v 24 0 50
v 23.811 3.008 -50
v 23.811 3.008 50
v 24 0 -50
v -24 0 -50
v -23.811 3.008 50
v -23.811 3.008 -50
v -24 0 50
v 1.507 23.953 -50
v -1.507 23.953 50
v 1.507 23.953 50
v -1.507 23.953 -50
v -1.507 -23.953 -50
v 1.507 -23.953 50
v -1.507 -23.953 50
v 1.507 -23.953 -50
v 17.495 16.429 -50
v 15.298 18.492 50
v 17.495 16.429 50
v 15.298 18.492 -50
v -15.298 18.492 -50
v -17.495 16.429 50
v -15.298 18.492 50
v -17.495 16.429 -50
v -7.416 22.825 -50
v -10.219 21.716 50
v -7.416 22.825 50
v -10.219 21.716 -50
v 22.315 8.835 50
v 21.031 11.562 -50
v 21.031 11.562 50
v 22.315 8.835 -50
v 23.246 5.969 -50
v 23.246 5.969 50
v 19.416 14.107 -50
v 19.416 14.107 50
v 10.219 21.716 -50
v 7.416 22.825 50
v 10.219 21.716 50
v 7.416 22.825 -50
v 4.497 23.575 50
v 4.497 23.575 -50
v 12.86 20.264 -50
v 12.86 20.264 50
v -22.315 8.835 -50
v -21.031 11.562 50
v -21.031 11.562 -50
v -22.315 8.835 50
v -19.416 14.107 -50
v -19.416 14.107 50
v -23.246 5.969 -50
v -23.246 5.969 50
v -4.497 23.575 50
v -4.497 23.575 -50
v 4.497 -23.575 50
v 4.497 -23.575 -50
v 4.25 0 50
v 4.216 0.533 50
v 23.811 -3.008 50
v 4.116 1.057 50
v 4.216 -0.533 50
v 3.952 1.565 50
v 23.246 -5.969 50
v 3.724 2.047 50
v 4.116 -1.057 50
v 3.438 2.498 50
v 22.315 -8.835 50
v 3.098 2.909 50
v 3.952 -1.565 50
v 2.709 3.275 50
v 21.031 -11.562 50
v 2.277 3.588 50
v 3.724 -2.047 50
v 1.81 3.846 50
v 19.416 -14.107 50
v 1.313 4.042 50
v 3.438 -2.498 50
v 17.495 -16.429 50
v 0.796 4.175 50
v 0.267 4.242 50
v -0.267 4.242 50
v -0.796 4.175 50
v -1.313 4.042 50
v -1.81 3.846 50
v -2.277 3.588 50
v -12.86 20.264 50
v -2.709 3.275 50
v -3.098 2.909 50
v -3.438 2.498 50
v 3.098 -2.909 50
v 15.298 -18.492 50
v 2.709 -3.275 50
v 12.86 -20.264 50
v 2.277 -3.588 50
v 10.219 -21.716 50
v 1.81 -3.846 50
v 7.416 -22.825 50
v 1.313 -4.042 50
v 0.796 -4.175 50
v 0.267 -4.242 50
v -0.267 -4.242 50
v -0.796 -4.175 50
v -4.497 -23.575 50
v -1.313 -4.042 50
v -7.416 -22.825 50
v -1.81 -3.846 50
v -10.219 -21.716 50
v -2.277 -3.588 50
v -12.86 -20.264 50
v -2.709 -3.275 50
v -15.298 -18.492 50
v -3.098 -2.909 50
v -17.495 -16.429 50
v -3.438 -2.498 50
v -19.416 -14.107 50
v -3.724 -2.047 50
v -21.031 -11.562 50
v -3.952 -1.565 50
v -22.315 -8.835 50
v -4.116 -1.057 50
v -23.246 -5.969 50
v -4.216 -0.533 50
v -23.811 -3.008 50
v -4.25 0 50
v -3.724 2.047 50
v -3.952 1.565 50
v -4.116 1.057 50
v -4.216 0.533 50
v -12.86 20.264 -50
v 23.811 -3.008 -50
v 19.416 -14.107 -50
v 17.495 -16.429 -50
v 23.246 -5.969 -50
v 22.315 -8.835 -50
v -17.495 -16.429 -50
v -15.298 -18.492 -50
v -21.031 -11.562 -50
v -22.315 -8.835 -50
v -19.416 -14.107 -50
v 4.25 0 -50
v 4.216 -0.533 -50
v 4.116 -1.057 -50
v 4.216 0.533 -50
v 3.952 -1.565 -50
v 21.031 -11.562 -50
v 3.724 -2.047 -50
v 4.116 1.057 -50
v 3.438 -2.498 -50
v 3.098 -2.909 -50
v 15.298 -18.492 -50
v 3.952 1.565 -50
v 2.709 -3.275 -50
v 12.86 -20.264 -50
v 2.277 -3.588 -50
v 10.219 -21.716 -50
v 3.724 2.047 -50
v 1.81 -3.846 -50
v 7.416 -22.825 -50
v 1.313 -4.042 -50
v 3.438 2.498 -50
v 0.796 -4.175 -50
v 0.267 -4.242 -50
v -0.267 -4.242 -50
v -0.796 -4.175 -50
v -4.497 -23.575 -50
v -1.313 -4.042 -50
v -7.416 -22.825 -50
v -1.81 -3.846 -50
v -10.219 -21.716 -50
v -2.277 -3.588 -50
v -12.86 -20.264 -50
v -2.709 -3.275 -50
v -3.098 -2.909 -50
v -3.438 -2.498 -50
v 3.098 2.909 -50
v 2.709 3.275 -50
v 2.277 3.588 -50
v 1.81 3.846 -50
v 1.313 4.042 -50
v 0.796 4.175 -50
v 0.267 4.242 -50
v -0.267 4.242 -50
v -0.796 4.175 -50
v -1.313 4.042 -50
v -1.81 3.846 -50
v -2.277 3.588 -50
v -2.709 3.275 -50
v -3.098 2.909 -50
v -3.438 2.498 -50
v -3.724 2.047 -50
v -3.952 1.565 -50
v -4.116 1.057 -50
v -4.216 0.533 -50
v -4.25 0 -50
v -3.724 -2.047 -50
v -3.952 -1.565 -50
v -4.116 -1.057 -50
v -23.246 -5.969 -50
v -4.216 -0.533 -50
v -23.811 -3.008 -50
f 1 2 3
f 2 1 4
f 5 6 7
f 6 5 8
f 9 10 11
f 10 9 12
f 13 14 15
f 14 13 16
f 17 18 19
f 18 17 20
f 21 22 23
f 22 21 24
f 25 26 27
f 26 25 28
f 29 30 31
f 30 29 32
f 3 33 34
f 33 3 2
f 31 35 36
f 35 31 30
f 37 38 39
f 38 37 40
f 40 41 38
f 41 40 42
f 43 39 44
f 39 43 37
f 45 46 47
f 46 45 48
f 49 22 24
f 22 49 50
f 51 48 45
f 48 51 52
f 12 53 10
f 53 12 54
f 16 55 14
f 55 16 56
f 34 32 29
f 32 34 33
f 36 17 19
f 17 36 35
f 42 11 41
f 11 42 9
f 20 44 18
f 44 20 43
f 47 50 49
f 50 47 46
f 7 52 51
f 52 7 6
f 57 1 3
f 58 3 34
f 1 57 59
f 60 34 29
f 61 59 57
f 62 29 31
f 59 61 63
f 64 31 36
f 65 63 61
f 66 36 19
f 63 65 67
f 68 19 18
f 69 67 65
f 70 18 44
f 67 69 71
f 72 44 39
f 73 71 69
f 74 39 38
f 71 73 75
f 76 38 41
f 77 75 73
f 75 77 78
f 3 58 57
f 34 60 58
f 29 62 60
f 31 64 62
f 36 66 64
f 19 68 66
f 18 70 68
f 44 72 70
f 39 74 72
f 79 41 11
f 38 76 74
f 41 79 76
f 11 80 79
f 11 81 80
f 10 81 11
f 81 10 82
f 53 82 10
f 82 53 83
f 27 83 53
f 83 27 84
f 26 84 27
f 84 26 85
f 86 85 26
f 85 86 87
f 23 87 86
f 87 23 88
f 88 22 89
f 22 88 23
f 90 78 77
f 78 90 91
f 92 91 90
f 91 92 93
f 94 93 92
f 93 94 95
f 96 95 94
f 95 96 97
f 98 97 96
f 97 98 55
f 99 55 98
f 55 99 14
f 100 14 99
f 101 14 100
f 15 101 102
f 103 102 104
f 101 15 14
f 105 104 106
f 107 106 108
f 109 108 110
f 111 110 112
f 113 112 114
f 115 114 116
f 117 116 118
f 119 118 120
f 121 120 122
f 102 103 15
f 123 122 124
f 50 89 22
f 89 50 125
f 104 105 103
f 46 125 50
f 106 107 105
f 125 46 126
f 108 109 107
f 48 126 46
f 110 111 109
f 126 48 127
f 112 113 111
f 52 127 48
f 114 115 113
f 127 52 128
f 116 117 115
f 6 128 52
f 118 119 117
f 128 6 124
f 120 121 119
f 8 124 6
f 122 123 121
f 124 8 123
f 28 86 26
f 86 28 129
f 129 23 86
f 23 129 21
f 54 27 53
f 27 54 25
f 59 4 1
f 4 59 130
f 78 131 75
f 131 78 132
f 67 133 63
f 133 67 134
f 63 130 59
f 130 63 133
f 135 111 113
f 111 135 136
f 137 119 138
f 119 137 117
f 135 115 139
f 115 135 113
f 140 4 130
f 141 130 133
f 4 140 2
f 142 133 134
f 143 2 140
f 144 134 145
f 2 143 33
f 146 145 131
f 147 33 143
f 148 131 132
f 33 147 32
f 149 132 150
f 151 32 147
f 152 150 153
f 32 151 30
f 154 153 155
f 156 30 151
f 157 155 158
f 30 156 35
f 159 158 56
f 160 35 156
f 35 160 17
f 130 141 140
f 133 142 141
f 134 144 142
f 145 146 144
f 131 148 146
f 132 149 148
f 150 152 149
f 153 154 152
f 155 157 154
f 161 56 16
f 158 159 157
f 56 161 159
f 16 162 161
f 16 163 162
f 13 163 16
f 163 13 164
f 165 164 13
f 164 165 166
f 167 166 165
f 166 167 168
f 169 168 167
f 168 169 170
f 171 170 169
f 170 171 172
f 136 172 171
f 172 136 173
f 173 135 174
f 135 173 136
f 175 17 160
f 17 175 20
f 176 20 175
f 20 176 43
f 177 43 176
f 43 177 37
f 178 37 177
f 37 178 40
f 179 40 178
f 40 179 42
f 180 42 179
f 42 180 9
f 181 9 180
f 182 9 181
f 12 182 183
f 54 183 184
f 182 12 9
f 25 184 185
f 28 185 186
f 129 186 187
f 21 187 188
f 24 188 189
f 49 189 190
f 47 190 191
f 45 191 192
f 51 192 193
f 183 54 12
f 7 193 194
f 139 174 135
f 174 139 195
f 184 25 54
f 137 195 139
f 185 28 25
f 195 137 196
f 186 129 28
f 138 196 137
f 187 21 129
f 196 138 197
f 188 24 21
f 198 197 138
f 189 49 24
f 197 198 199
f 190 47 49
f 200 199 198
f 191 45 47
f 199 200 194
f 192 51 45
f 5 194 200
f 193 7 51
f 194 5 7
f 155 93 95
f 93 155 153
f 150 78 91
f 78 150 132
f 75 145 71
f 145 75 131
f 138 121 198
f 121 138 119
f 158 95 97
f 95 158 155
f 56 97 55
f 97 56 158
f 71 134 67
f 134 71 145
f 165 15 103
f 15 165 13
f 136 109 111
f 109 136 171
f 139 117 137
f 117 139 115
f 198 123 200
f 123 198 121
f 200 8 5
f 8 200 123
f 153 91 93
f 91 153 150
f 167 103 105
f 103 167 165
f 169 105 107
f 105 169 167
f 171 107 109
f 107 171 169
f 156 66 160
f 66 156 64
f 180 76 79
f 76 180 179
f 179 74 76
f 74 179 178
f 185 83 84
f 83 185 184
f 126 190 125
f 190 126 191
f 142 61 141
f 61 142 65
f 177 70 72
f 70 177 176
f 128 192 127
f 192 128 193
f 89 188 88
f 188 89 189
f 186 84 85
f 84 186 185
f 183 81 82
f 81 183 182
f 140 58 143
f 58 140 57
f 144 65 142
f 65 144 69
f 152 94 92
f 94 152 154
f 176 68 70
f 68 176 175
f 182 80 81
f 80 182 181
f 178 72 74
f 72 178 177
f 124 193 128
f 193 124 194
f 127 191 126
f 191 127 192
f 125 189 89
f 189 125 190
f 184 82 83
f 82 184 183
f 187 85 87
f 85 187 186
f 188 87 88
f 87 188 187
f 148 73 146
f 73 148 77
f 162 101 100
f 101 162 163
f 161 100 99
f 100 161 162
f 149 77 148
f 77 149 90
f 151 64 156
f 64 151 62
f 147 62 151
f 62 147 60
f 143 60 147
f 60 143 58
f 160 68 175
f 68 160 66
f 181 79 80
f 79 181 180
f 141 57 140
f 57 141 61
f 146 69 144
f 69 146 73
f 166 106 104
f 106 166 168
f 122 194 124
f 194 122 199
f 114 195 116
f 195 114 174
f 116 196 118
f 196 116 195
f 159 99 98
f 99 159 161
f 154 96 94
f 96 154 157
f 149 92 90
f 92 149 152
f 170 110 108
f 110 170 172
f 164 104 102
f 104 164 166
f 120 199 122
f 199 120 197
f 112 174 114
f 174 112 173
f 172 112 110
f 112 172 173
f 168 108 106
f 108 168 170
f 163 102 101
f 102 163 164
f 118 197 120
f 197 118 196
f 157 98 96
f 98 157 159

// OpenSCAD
$fn = 50;


difference() {
	union() {
		translate(v = [0, 0, -50.0000000000]) {
			cylinder(h = 100, r = 24.0000000000);
		}
	}
	union() {
		translate(v = [0, 0, -100.0000000000]) {
			cylinder(h = 200, r = 4.2500000000);
		}
	}
}
